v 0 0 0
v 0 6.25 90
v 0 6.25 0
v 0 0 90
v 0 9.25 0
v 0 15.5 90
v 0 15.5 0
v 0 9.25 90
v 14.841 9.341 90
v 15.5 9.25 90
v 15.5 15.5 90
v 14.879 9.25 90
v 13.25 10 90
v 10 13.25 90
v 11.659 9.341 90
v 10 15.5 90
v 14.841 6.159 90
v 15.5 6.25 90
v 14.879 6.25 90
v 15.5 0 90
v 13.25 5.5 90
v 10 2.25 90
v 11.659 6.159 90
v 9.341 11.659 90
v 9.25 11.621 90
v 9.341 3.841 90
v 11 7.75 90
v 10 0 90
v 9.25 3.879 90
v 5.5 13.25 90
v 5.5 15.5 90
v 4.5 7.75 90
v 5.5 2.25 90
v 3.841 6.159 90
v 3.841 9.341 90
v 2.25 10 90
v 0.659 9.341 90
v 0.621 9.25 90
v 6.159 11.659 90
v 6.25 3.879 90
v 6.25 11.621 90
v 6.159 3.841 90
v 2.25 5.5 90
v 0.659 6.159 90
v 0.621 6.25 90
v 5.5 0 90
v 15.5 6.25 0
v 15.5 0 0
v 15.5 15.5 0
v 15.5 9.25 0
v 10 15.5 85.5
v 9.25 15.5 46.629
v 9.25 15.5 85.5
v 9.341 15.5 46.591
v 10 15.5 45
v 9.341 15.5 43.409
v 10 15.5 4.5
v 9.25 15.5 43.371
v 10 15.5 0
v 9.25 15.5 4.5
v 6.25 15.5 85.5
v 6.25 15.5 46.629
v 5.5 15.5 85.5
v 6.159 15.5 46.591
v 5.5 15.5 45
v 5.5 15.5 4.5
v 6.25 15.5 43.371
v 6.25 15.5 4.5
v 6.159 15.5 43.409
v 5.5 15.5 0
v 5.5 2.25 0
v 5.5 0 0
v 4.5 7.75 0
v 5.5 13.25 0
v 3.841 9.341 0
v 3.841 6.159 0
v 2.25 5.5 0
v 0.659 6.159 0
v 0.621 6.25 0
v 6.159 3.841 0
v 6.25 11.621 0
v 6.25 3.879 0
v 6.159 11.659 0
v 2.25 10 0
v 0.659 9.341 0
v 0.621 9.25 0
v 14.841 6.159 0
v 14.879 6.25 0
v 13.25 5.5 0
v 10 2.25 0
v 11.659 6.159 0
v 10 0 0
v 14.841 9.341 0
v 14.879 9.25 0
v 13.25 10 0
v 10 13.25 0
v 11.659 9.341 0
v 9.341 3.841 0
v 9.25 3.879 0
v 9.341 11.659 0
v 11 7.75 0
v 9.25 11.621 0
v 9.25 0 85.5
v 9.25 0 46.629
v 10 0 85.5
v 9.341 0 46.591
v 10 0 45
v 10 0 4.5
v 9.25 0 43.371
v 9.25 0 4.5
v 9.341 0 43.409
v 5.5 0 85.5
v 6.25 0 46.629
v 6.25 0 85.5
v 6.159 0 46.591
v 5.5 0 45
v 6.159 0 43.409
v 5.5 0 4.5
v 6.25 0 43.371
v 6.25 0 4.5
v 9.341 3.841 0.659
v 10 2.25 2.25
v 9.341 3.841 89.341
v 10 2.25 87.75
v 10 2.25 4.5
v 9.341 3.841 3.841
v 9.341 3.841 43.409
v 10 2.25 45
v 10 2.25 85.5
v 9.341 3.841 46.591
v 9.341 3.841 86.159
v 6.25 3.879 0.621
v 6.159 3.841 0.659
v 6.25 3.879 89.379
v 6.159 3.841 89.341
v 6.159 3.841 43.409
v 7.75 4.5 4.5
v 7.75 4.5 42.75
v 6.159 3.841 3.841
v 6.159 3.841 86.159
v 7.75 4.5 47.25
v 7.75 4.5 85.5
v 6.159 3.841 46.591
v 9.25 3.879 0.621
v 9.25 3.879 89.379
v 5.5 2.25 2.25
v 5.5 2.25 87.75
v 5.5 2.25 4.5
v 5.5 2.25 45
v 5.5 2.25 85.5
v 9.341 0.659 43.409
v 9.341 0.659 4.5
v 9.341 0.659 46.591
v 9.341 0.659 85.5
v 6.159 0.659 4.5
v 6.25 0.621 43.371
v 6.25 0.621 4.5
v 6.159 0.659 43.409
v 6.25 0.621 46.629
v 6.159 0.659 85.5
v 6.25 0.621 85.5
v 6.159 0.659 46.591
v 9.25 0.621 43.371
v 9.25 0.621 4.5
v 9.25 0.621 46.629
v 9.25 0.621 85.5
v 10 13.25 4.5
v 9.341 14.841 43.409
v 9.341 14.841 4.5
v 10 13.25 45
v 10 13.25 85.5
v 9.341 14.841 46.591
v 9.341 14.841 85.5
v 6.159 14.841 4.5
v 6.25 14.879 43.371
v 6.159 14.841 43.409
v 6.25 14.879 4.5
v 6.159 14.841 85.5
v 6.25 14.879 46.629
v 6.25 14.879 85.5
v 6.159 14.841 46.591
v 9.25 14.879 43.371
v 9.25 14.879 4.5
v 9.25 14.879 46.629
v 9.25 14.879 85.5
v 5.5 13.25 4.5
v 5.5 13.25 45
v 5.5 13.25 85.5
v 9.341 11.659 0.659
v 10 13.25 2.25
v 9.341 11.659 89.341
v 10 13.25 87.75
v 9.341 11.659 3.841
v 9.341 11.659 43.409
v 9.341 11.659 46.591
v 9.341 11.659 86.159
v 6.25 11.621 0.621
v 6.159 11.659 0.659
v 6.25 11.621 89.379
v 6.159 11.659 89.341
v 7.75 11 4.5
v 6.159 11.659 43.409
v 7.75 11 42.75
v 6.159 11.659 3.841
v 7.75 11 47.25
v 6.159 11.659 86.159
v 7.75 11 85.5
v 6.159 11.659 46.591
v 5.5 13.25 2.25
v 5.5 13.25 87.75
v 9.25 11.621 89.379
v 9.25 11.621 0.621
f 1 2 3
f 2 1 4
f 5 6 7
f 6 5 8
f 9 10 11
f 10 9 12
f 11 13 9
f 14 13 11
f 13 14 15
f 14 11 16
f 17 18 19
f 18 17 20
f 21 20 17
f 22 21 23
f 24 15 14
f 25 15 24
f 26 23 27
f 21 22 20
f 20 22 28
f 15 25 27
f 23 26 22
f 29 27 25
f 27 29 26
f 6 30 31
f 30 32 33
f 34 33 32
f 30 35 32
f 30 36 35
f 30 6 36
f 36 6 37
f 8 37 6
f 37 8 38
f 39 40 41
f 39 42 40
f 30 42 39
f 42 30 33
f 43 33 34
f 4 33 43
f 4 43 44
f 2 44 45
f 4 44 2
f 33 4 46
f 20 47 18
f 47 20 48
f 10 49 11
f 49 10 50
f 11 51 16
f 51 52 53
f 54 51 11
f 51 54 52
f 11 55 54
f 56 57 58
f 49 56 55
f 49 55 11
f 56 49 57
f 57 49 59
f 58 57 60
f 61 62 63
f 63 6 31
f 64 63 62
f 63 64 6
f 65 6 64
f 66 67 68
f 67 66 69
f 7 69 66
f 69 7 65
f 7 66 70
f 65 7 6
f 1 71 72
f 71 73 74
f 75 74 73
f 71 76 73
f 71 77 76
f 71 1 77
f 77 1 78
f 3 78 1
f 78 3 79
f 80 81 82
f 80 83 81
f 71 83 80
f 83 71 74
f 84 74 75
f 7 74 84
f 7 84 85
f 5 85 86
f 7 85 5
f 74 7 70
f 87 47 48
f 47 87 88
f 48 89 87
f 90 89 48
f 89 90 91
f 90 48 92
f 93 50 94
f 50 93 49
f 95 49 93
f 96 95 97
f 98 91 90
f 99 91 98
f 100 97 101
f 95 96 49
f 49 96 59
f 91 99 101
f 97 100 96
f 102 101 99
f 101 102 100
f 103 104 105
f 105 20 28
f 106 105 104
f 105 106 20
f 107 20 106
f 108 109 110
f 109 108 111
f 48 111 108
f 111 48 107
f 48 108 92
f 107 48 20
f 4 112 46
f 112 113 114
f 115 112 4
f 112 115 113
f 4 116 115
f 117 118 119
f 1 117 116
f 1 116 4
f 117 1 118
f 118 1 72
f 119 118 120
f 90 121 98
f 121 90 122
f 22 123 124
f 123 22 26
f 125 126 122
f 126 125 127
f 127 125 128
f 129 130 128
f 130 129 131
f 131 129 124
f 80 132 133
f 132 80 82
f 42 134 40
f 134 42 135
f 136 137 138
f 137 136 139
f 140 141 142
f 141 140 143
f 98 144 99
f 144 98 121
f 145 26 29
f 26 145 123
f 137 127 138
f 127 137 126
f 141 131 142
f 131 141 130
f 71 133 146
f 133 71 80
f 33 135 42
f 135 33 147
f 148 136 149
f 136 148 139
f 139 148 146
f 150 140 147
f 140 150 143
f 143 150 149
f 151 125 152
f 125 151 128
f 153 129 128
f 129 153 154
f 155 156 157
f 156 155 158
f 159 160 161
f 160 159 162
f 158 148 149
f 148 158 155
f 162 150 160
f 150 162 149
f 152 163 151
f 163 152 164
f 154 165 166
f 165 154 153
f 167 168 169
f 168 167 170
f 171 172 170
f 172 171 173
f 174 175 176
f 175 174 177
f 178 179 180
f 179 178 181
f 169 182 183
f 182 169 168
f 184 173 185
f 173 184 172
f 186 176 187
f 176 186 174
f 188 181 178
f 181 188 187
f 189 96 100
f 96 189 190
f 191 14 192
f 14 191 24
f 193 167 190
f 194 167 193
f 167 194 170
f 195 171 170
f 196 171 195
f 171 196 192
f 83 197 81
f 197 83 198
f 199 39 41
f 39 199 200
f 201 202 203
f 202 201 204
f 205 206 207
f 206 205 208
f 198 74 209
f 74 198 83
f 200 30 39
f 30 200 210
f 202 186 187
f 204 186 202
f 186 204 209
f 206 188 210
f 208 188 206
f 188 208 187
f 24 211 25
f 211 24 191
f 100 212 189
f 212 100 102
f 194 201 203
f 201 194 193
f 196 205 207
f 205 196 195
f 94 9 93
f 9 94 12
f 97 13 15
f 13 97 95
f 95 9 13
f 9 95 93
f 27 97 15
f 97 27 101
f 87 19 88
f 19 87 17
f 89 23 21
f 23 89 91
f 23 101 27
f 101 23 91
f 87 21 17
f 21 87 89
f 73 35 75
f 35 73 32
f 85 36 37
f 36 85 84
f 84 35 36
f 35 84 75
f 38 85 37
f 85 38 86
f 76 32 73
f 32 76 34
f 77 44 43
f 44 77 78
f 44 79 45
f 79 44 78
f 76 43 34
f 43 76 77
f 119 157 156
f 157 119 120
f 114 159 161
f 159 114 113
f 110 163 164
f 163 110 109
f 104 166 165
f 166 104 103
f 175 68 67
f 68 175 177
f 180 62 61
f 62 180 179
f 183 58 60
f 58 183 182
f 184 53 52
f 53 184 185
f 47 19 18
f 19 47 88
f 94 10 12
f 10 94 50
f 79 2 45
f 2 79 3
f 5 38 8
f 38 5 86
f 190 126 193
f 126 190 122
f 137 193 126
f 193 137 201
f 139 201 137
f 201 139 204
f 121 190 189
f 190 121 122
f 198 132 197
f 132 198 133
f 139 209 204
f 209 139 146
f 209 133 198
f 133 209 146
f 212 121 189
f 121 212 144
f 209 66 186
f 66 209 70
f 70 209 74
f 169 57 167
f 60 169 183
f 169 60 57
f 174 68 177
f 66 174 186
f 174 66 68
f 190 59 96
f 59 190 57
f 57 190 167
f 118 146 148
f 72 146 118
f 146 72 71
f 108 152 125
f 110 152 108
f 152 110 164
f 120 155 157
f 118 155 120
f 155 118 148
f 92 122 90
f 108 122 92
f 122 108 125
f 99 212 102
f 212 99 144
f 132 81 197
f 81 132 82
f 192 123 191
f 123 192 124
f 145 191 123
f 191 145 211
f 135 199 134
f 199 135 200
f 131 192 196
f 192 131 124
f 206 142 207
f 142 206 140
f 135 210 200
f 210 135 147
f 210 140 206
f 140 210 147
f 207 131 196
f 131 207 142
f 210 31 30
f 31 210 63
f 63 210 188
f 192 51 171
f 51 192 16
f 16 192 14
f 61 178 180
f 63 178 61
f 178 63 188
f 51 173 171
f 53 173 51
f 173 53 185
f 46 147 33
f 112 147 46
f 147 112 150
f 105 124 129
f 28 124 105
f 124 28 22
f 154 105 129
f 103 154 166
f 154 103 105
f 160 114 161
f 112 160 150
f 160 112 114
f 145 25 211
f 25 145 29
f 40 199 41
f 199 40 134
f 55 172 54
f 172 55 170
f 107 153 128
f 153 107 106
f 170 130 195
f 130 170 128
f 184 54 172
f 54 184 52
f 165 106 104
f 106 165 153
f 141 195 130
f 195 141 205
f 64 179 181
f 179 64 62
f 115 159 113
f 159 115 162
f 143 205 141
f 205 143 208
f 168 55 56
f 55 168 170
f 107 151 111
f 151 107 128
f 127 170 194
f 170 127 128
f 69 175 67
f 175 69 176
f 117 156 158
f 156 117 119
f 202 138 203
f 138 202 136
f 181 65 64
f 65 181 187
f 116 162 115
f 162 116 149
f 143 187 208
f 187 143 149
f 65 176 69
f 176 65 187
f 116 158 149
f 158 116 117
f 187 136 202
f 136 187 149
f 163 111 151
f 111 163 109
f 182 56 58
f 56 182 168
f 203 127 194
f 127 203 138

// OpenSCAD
/**
 * Create a Fischertechnik compatible building block with hole for axis.
 *
 * @author Brian Schroeder
 * @since 21.04.2020
 */

/* [Block length] */
// Building block length in millimeters
BlockLength=90; // [30, 60, 90]

/* [Has Hole in center] */
// Building block has hole for 4mm axis in the center
HasHole=true; // [false, true]

/*
 * Create the Fischertechnik compatible building block with length passed by the argument.
 *
 * @param ftiBlockLength block length in millimeters (default is 90)
 * @param ftiHasHole block has hole for 4mm axis in the center if true (default is true)
 */
module ftiBuildingBlock15x15(ftiBlockLength=90, ftiHasHole=true) {

    difference() {
        dFti=4.5; // axis diameter 4mm + some space around
        dBlock=15.5; // block (max) diameter + some more around (adjust to Your printer)
        gFtiW=3; // with of gap
        gFtiD=2; // depth of gap
        cube([dBlock, dBlock, ftiBlockLength]);
        // axis
        translate([dBlock/2,dFti/2,0])cylinder(h=ftiBlockLength, d=dFti);
        translate([dBlock/2,dBlock-dFti/2,0])cylinder(h=ftiBlockLength, d=dFti);
        translate([dBlock-dFti/2,dBlock/2,0])cylinder(h=ftiBlockLength, d=dFti);
        translate([dFti/2,dBlock/2,0])cylinder(h=ftiBlockLength, d=dFti);
        // space
        translate([dBlock/2-gFtiW/2,0,0])cube([gFtiW, gFtiD, ftiBlockLength]);
        translate([dBlock/2-gFtiW/2,dBlock-gFtiD,0])cube([gFtiW, gFtiD, ftiBlockLength]);
        translate([dBlock-gFtiW/2,dBlock/2-gFtiW/2,0])cube([gFtiD, gFtiW, ftiBlockLength]);
        translate([0,dBlock/2-gFtiW/2,0])cube([gFtiD, gFtiW, ftiBlockLength]);
        // orthoganal axis at end
        translate([dBlock/2, dBlock, dFti/2])rotate([90, 0, 0])cylinder(h=dBlock, d=dFti);
        translate([dBlock/2-dFti/2, dBlock-dFti/2, 0])cube([dFti, dFti, dFti]);
        translate([dBlock/2-dFti/2, 0-dFti/2, 0])cube([dFti, dFti, dFti]);
        translate([dBlock/2+gFtiW/2, 0, -gFtiD/2])rotate([270, 180, 0])cube([gFtiW, gFtiD, dBlock]);
        // orthoganal axis at other end
        translate([dBlock/2, dBlock, ftiBlockLength-dFti/2])rotate([90, 0, 0])cylinder(h=dBlock, d=dFti);
        translate([dBlock/2-dFti/2, dBlock-dFti/2, ftiBlockLength-dFti])cube([dFti, dFti, dFti]);
        translate([dBlock/2-dFti/2, 0-dFti/2, ftiBlockLength-dFti])cube([dFti, dFti, dFti]);
        translate([dBlock/2+gFtiW/2, 0, ftiBlockLength-gFtiD/2])rotate([270, 180, 0])cube([gFtiW, gFtiD, dBlock]);
        // hole
        if (ftiHasHole) {
            translate([dBlock/2, dBlock, ftiBlockLength/2])rotate([90, 0, 0])cylinder(h=dBlock, d=dFti);
        }
    }
}

ftiBuildingBlock15x15(BlockLength, HasHole);
